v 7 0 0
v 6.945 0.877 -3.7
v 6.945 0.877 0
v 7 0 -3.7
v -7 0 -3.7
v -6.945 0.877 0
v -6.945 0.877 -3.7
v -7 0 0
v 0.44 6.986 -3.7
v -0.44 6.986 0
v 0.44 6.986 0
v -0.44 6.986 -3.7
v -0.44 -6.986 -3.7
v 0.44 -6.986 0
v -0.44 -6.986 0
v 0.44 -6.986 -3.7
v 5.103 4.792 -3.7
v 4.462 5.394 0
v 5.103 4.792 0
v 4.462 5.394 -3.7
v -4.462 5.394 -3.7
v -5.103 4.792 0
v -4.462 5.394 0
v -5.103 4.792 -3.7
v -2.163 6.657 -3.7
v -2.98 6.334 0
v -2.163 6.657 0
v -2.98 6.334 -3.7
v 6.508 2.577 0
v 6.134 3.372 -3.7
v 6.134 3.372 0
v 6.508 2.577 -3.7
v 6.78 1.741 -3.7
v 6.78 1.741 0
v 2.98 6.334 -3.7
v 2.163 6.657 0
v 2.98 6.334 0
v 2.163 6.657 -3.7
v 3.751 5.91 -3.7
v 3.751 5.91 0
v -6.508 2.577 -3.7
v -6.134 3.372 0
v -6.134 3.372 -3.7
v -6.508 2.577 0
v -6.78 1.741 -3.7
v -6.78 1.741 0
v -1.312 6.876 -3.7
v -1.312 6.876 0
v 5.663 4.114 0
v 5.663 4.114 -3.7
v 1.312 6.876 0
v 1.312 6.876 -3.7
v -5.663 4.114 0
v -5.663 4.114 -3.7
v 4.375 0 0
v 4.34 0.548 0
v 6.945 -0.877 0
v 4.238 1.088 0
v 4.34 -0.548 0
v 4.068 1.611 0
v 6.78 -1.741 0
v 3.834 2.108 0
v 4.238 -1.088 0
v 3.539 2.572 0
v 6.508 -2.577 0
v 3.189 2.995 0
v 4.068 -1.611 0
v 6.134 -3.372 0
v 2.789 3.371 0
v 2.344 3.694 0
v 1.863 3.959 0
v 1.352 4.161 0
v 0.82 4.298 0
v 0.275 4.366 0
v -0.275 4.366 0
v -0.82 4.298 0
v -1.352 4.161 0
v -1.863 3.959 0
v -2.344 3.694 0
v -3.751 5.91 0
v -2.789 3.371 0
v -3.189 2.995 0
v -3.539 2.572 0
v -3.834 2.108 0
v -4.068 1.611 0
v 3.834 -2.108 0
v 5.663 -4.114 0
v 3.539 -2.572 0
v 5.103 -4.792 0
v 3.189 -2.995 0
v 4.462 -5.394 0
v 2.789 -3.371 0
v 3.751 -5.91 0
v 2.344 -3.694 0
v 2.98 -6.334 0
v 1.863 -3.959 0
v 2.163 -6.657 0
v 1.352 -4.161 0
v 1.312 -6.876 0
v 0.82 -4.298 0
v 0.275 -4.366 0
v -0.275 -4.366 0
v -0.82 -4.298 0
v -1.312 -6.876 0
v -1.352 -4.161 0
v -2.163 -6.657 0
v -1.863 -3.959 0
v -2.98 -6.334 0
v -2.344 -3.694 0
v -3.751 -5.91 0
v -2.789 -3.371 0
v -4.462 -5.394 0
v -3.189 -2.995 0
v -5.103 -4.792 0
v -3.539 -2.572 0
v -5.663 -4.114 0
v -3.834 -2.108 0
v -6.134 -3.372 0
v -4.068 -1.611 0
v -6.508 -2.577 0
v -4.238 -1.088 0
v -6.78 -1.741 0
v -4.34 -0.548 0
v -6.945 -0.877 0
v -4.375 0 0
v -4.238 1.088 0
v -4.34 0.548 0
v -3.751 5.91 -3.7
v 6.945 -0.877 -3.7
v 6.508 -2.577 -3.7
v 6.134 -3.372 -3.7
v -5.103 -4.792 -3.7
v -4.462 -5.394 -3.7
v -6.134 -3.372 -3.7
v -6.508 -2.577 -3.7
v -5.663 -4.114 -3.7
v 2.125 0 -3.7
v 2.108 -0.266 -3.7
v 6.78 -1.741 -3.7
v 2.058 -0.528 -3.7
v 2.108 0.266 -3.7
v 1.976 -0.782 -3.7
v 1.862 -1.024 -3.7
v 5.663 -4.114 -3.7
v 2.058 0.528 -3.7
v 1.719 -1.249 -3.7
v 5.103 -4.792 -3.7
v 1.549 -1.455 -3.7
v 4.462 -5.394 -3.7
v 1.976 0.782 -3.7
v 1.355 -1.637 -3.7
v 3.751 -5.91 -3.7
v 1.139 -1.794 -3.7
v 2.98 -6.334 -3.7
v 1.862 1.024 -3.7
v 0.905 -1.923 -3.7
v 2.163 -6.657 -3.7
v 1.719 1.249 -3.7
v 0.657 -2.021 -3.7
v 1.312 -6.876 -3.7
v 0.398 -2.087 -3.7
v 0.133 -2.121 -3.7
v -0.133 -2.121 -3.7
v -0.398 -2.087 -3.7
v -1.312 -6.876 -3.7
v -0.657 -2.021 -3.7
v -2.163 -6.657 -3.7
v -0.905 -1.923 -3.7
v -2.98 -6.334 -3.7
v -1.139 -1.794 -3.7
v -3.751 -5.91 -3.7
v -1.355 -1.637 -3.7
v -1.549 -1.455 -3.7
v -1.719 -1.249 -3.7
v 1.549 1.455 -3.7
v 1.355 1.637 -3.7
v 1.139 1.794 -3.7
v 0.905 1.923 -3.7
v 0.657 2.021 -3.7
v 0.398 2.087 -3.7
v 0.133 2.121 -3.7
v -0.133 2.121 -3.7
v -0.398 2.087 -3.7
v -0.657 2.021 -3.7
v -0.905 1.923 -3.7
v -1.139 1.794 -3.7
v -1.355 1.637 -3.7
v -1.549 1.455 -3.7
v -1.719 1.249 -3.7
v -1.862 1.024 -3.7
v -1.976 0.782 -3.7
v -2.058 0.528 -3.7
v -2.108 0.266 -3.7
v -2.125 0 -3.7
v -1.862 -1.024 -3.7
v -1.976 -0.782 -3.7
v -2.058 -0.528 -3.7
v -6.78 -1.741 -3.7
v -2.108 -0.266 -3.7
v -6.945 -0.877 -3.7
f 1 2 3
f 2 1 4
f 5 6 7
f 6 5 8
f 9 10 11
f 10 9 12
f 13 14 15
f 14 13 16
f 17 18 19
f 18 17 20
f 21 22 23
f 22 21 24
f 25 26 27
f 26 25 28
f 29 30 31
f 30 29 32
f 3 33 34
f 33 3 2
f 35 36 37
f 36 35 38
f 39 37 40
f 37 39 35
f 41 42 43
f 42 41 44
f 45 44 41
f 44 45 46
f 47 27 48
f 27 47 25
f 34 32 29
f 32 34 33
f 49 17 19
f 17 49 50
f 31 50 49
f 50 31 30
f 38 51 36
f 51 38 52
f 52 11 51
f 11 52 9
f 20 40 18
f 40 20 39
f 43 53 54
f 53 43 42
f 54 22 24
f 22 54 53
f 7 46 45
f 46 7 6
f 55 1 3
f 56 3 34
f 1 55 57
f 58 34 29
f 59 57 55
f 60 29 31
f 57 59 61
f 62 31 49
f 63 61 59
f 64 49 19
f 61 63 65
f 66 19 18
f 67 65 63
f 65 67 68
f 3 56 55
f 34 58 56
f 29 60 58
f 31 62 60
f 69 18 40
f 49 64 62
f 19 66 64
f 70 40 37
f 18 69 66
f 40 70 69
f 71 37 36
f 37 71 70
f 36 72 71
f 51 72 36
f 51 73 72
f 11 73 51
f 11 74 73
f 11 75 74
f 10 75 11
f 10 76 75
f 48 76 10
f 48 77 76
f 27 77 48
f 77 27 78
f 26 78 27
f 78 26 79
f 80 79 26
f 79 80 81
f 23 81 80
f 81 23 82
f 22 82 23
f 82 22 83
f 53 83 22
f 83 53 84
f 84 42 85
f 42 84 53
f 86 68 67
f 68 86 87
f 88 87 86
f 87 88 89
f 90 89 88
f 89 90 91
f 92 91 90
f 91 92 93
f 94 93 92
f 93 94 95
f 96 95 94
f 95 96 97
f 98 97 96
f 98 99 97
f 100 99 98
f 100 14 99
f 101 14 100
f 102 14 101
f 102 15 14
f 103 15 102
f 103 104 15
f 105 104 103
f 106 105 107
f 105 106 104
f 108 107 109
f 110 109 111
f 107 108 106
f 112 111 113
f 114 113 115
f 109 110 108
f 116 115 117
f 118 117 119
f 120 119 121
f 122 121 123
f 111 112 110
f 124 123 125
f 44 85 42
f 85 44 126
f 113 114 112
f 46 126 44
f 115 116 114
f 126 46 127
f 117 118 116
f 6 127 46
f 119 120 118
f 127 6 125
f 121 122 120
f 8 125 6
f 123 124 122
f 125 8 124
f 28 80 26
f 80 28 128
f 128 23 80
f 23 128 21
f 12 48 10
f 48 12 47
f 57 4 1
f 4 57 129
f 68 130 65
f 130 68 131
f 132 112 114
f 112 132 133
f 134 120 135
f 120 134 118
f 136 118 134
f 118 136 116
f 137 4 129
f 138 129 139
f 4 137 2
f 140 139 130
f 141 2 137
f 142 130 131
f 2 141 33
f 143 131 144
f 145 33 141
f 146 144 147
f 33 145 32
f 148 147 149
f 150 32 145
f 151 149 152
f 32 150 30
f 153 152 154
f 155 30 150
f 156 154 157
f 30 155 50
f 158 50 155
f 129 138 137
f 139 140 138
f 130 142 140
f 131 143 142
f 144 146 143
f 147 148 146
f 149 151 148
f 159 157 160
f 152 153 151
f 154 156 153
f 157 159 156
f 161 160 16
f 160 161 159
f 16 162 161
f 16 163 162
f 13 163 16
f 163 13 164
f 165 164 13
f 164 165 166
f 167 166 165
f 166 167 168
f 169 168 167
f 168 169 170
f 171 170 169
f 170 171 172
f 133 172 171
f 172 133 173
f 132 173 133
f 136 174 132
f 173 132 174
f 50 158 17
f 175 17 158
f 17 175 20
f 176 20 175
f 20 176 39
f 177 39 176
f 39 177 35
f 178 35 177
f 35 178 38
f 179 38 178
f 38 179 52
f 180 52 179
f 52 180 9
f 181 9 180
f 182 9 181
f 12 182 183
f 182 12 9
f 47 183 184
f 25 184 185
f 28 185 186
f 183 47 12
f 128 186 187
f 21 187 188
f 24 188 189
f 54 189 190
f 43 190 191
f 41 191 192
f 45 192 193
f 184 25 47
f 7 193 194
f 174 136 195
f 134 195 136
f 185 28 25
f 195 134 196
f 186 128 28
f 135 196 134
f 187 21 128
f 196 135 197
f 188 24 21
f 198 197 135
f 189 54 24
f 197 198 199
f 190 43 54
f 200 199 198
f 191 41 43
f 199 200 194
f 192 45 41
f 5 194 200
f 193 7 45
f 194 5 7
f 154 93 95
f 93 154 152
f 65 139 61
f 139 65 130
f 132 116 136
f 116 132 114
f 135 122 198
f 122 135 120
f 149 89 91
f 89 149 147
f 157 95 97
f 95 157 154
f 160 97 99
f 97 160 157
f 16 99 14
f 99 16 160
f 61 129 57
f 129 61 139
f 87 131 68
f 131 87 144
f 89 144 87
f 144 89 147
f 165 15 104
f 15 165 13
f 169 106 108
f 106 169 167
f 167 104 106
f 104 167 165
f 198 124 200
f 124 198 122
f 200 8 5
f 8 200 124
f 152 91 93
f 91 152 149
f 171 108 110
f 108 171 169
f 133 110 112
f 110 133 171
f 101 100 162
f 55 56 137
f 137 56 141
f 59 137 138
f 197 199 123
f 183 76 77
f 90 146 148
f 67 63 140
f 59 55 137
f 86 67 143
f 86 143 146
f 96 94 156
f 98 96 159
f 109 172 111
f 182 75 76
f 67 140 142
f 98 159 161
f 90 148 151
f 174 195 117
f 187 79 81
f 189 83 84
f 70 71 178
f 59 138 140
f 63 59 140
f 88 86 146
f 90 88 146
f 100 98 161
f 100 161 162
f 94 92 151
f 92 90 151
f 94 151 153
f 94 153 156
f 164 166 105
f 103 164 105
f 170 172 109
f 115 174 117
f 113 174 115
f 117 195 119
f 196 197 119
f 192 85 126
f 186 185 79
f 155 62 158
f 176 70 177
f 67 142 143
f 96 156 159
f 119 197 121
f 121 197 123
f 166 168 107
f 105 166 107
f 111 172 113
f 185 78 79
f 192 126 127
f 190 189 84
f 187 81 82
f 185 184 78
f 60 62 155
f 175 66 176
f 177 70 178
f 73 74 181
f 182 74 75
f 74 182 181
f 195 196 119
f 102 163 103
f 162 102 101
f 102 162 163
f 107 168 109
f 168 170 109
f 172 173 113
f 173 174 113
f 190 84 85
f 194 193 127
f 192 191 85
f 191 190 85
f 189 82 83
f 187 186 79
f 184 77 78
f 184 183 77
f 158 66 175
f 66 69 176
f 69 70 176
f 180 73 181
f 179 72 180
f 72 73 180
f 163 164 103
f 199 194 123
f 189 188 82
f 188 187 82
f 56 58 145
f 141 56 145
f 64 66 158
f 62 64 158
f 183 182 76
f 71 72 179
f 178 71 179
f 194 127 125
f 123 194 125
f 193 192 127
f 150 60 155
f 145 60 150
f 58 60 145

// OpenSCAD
$fn = 50;


difference() {
	union() {
		translate(v = [0, 0, -3.7000000000]) {
			cylinder(h = 3.7000000000, r = 7.0000000000);
		}
		translate(v = [0, 0, -3.7000000000]) {
			cylinder(h = 3.7000000000, r = 2.8750000000);
		}
	}
	union() {
		translate(v = [0, 0, 0]) {
			rotate(a = [0, 0, 0]) {
				difference() {
					union() {
						#translate(v = [0, 0, -3.7000000000]) {
							cylinder(h = 3.7000000000, r = 2.0000000000);
						}
						#translate(v = [0, 0, -3.7000000000]) {
							cylinder(h = 3.7000000000, r1 = 2.1250000000, r2 = 4.3750000000);
						}
						#translate(v = [0, 0, -3.7000000000]) {
							cylinder(h = 3.7000000000, r = 2.1250000000);
						}
						#translate(v = [0, 0, -3.7000000000]) {
							cylinder(h = 3.7000000000, r = 2.0000000000);
						}
					}
					union();
				}
			}
		}
	}
}
